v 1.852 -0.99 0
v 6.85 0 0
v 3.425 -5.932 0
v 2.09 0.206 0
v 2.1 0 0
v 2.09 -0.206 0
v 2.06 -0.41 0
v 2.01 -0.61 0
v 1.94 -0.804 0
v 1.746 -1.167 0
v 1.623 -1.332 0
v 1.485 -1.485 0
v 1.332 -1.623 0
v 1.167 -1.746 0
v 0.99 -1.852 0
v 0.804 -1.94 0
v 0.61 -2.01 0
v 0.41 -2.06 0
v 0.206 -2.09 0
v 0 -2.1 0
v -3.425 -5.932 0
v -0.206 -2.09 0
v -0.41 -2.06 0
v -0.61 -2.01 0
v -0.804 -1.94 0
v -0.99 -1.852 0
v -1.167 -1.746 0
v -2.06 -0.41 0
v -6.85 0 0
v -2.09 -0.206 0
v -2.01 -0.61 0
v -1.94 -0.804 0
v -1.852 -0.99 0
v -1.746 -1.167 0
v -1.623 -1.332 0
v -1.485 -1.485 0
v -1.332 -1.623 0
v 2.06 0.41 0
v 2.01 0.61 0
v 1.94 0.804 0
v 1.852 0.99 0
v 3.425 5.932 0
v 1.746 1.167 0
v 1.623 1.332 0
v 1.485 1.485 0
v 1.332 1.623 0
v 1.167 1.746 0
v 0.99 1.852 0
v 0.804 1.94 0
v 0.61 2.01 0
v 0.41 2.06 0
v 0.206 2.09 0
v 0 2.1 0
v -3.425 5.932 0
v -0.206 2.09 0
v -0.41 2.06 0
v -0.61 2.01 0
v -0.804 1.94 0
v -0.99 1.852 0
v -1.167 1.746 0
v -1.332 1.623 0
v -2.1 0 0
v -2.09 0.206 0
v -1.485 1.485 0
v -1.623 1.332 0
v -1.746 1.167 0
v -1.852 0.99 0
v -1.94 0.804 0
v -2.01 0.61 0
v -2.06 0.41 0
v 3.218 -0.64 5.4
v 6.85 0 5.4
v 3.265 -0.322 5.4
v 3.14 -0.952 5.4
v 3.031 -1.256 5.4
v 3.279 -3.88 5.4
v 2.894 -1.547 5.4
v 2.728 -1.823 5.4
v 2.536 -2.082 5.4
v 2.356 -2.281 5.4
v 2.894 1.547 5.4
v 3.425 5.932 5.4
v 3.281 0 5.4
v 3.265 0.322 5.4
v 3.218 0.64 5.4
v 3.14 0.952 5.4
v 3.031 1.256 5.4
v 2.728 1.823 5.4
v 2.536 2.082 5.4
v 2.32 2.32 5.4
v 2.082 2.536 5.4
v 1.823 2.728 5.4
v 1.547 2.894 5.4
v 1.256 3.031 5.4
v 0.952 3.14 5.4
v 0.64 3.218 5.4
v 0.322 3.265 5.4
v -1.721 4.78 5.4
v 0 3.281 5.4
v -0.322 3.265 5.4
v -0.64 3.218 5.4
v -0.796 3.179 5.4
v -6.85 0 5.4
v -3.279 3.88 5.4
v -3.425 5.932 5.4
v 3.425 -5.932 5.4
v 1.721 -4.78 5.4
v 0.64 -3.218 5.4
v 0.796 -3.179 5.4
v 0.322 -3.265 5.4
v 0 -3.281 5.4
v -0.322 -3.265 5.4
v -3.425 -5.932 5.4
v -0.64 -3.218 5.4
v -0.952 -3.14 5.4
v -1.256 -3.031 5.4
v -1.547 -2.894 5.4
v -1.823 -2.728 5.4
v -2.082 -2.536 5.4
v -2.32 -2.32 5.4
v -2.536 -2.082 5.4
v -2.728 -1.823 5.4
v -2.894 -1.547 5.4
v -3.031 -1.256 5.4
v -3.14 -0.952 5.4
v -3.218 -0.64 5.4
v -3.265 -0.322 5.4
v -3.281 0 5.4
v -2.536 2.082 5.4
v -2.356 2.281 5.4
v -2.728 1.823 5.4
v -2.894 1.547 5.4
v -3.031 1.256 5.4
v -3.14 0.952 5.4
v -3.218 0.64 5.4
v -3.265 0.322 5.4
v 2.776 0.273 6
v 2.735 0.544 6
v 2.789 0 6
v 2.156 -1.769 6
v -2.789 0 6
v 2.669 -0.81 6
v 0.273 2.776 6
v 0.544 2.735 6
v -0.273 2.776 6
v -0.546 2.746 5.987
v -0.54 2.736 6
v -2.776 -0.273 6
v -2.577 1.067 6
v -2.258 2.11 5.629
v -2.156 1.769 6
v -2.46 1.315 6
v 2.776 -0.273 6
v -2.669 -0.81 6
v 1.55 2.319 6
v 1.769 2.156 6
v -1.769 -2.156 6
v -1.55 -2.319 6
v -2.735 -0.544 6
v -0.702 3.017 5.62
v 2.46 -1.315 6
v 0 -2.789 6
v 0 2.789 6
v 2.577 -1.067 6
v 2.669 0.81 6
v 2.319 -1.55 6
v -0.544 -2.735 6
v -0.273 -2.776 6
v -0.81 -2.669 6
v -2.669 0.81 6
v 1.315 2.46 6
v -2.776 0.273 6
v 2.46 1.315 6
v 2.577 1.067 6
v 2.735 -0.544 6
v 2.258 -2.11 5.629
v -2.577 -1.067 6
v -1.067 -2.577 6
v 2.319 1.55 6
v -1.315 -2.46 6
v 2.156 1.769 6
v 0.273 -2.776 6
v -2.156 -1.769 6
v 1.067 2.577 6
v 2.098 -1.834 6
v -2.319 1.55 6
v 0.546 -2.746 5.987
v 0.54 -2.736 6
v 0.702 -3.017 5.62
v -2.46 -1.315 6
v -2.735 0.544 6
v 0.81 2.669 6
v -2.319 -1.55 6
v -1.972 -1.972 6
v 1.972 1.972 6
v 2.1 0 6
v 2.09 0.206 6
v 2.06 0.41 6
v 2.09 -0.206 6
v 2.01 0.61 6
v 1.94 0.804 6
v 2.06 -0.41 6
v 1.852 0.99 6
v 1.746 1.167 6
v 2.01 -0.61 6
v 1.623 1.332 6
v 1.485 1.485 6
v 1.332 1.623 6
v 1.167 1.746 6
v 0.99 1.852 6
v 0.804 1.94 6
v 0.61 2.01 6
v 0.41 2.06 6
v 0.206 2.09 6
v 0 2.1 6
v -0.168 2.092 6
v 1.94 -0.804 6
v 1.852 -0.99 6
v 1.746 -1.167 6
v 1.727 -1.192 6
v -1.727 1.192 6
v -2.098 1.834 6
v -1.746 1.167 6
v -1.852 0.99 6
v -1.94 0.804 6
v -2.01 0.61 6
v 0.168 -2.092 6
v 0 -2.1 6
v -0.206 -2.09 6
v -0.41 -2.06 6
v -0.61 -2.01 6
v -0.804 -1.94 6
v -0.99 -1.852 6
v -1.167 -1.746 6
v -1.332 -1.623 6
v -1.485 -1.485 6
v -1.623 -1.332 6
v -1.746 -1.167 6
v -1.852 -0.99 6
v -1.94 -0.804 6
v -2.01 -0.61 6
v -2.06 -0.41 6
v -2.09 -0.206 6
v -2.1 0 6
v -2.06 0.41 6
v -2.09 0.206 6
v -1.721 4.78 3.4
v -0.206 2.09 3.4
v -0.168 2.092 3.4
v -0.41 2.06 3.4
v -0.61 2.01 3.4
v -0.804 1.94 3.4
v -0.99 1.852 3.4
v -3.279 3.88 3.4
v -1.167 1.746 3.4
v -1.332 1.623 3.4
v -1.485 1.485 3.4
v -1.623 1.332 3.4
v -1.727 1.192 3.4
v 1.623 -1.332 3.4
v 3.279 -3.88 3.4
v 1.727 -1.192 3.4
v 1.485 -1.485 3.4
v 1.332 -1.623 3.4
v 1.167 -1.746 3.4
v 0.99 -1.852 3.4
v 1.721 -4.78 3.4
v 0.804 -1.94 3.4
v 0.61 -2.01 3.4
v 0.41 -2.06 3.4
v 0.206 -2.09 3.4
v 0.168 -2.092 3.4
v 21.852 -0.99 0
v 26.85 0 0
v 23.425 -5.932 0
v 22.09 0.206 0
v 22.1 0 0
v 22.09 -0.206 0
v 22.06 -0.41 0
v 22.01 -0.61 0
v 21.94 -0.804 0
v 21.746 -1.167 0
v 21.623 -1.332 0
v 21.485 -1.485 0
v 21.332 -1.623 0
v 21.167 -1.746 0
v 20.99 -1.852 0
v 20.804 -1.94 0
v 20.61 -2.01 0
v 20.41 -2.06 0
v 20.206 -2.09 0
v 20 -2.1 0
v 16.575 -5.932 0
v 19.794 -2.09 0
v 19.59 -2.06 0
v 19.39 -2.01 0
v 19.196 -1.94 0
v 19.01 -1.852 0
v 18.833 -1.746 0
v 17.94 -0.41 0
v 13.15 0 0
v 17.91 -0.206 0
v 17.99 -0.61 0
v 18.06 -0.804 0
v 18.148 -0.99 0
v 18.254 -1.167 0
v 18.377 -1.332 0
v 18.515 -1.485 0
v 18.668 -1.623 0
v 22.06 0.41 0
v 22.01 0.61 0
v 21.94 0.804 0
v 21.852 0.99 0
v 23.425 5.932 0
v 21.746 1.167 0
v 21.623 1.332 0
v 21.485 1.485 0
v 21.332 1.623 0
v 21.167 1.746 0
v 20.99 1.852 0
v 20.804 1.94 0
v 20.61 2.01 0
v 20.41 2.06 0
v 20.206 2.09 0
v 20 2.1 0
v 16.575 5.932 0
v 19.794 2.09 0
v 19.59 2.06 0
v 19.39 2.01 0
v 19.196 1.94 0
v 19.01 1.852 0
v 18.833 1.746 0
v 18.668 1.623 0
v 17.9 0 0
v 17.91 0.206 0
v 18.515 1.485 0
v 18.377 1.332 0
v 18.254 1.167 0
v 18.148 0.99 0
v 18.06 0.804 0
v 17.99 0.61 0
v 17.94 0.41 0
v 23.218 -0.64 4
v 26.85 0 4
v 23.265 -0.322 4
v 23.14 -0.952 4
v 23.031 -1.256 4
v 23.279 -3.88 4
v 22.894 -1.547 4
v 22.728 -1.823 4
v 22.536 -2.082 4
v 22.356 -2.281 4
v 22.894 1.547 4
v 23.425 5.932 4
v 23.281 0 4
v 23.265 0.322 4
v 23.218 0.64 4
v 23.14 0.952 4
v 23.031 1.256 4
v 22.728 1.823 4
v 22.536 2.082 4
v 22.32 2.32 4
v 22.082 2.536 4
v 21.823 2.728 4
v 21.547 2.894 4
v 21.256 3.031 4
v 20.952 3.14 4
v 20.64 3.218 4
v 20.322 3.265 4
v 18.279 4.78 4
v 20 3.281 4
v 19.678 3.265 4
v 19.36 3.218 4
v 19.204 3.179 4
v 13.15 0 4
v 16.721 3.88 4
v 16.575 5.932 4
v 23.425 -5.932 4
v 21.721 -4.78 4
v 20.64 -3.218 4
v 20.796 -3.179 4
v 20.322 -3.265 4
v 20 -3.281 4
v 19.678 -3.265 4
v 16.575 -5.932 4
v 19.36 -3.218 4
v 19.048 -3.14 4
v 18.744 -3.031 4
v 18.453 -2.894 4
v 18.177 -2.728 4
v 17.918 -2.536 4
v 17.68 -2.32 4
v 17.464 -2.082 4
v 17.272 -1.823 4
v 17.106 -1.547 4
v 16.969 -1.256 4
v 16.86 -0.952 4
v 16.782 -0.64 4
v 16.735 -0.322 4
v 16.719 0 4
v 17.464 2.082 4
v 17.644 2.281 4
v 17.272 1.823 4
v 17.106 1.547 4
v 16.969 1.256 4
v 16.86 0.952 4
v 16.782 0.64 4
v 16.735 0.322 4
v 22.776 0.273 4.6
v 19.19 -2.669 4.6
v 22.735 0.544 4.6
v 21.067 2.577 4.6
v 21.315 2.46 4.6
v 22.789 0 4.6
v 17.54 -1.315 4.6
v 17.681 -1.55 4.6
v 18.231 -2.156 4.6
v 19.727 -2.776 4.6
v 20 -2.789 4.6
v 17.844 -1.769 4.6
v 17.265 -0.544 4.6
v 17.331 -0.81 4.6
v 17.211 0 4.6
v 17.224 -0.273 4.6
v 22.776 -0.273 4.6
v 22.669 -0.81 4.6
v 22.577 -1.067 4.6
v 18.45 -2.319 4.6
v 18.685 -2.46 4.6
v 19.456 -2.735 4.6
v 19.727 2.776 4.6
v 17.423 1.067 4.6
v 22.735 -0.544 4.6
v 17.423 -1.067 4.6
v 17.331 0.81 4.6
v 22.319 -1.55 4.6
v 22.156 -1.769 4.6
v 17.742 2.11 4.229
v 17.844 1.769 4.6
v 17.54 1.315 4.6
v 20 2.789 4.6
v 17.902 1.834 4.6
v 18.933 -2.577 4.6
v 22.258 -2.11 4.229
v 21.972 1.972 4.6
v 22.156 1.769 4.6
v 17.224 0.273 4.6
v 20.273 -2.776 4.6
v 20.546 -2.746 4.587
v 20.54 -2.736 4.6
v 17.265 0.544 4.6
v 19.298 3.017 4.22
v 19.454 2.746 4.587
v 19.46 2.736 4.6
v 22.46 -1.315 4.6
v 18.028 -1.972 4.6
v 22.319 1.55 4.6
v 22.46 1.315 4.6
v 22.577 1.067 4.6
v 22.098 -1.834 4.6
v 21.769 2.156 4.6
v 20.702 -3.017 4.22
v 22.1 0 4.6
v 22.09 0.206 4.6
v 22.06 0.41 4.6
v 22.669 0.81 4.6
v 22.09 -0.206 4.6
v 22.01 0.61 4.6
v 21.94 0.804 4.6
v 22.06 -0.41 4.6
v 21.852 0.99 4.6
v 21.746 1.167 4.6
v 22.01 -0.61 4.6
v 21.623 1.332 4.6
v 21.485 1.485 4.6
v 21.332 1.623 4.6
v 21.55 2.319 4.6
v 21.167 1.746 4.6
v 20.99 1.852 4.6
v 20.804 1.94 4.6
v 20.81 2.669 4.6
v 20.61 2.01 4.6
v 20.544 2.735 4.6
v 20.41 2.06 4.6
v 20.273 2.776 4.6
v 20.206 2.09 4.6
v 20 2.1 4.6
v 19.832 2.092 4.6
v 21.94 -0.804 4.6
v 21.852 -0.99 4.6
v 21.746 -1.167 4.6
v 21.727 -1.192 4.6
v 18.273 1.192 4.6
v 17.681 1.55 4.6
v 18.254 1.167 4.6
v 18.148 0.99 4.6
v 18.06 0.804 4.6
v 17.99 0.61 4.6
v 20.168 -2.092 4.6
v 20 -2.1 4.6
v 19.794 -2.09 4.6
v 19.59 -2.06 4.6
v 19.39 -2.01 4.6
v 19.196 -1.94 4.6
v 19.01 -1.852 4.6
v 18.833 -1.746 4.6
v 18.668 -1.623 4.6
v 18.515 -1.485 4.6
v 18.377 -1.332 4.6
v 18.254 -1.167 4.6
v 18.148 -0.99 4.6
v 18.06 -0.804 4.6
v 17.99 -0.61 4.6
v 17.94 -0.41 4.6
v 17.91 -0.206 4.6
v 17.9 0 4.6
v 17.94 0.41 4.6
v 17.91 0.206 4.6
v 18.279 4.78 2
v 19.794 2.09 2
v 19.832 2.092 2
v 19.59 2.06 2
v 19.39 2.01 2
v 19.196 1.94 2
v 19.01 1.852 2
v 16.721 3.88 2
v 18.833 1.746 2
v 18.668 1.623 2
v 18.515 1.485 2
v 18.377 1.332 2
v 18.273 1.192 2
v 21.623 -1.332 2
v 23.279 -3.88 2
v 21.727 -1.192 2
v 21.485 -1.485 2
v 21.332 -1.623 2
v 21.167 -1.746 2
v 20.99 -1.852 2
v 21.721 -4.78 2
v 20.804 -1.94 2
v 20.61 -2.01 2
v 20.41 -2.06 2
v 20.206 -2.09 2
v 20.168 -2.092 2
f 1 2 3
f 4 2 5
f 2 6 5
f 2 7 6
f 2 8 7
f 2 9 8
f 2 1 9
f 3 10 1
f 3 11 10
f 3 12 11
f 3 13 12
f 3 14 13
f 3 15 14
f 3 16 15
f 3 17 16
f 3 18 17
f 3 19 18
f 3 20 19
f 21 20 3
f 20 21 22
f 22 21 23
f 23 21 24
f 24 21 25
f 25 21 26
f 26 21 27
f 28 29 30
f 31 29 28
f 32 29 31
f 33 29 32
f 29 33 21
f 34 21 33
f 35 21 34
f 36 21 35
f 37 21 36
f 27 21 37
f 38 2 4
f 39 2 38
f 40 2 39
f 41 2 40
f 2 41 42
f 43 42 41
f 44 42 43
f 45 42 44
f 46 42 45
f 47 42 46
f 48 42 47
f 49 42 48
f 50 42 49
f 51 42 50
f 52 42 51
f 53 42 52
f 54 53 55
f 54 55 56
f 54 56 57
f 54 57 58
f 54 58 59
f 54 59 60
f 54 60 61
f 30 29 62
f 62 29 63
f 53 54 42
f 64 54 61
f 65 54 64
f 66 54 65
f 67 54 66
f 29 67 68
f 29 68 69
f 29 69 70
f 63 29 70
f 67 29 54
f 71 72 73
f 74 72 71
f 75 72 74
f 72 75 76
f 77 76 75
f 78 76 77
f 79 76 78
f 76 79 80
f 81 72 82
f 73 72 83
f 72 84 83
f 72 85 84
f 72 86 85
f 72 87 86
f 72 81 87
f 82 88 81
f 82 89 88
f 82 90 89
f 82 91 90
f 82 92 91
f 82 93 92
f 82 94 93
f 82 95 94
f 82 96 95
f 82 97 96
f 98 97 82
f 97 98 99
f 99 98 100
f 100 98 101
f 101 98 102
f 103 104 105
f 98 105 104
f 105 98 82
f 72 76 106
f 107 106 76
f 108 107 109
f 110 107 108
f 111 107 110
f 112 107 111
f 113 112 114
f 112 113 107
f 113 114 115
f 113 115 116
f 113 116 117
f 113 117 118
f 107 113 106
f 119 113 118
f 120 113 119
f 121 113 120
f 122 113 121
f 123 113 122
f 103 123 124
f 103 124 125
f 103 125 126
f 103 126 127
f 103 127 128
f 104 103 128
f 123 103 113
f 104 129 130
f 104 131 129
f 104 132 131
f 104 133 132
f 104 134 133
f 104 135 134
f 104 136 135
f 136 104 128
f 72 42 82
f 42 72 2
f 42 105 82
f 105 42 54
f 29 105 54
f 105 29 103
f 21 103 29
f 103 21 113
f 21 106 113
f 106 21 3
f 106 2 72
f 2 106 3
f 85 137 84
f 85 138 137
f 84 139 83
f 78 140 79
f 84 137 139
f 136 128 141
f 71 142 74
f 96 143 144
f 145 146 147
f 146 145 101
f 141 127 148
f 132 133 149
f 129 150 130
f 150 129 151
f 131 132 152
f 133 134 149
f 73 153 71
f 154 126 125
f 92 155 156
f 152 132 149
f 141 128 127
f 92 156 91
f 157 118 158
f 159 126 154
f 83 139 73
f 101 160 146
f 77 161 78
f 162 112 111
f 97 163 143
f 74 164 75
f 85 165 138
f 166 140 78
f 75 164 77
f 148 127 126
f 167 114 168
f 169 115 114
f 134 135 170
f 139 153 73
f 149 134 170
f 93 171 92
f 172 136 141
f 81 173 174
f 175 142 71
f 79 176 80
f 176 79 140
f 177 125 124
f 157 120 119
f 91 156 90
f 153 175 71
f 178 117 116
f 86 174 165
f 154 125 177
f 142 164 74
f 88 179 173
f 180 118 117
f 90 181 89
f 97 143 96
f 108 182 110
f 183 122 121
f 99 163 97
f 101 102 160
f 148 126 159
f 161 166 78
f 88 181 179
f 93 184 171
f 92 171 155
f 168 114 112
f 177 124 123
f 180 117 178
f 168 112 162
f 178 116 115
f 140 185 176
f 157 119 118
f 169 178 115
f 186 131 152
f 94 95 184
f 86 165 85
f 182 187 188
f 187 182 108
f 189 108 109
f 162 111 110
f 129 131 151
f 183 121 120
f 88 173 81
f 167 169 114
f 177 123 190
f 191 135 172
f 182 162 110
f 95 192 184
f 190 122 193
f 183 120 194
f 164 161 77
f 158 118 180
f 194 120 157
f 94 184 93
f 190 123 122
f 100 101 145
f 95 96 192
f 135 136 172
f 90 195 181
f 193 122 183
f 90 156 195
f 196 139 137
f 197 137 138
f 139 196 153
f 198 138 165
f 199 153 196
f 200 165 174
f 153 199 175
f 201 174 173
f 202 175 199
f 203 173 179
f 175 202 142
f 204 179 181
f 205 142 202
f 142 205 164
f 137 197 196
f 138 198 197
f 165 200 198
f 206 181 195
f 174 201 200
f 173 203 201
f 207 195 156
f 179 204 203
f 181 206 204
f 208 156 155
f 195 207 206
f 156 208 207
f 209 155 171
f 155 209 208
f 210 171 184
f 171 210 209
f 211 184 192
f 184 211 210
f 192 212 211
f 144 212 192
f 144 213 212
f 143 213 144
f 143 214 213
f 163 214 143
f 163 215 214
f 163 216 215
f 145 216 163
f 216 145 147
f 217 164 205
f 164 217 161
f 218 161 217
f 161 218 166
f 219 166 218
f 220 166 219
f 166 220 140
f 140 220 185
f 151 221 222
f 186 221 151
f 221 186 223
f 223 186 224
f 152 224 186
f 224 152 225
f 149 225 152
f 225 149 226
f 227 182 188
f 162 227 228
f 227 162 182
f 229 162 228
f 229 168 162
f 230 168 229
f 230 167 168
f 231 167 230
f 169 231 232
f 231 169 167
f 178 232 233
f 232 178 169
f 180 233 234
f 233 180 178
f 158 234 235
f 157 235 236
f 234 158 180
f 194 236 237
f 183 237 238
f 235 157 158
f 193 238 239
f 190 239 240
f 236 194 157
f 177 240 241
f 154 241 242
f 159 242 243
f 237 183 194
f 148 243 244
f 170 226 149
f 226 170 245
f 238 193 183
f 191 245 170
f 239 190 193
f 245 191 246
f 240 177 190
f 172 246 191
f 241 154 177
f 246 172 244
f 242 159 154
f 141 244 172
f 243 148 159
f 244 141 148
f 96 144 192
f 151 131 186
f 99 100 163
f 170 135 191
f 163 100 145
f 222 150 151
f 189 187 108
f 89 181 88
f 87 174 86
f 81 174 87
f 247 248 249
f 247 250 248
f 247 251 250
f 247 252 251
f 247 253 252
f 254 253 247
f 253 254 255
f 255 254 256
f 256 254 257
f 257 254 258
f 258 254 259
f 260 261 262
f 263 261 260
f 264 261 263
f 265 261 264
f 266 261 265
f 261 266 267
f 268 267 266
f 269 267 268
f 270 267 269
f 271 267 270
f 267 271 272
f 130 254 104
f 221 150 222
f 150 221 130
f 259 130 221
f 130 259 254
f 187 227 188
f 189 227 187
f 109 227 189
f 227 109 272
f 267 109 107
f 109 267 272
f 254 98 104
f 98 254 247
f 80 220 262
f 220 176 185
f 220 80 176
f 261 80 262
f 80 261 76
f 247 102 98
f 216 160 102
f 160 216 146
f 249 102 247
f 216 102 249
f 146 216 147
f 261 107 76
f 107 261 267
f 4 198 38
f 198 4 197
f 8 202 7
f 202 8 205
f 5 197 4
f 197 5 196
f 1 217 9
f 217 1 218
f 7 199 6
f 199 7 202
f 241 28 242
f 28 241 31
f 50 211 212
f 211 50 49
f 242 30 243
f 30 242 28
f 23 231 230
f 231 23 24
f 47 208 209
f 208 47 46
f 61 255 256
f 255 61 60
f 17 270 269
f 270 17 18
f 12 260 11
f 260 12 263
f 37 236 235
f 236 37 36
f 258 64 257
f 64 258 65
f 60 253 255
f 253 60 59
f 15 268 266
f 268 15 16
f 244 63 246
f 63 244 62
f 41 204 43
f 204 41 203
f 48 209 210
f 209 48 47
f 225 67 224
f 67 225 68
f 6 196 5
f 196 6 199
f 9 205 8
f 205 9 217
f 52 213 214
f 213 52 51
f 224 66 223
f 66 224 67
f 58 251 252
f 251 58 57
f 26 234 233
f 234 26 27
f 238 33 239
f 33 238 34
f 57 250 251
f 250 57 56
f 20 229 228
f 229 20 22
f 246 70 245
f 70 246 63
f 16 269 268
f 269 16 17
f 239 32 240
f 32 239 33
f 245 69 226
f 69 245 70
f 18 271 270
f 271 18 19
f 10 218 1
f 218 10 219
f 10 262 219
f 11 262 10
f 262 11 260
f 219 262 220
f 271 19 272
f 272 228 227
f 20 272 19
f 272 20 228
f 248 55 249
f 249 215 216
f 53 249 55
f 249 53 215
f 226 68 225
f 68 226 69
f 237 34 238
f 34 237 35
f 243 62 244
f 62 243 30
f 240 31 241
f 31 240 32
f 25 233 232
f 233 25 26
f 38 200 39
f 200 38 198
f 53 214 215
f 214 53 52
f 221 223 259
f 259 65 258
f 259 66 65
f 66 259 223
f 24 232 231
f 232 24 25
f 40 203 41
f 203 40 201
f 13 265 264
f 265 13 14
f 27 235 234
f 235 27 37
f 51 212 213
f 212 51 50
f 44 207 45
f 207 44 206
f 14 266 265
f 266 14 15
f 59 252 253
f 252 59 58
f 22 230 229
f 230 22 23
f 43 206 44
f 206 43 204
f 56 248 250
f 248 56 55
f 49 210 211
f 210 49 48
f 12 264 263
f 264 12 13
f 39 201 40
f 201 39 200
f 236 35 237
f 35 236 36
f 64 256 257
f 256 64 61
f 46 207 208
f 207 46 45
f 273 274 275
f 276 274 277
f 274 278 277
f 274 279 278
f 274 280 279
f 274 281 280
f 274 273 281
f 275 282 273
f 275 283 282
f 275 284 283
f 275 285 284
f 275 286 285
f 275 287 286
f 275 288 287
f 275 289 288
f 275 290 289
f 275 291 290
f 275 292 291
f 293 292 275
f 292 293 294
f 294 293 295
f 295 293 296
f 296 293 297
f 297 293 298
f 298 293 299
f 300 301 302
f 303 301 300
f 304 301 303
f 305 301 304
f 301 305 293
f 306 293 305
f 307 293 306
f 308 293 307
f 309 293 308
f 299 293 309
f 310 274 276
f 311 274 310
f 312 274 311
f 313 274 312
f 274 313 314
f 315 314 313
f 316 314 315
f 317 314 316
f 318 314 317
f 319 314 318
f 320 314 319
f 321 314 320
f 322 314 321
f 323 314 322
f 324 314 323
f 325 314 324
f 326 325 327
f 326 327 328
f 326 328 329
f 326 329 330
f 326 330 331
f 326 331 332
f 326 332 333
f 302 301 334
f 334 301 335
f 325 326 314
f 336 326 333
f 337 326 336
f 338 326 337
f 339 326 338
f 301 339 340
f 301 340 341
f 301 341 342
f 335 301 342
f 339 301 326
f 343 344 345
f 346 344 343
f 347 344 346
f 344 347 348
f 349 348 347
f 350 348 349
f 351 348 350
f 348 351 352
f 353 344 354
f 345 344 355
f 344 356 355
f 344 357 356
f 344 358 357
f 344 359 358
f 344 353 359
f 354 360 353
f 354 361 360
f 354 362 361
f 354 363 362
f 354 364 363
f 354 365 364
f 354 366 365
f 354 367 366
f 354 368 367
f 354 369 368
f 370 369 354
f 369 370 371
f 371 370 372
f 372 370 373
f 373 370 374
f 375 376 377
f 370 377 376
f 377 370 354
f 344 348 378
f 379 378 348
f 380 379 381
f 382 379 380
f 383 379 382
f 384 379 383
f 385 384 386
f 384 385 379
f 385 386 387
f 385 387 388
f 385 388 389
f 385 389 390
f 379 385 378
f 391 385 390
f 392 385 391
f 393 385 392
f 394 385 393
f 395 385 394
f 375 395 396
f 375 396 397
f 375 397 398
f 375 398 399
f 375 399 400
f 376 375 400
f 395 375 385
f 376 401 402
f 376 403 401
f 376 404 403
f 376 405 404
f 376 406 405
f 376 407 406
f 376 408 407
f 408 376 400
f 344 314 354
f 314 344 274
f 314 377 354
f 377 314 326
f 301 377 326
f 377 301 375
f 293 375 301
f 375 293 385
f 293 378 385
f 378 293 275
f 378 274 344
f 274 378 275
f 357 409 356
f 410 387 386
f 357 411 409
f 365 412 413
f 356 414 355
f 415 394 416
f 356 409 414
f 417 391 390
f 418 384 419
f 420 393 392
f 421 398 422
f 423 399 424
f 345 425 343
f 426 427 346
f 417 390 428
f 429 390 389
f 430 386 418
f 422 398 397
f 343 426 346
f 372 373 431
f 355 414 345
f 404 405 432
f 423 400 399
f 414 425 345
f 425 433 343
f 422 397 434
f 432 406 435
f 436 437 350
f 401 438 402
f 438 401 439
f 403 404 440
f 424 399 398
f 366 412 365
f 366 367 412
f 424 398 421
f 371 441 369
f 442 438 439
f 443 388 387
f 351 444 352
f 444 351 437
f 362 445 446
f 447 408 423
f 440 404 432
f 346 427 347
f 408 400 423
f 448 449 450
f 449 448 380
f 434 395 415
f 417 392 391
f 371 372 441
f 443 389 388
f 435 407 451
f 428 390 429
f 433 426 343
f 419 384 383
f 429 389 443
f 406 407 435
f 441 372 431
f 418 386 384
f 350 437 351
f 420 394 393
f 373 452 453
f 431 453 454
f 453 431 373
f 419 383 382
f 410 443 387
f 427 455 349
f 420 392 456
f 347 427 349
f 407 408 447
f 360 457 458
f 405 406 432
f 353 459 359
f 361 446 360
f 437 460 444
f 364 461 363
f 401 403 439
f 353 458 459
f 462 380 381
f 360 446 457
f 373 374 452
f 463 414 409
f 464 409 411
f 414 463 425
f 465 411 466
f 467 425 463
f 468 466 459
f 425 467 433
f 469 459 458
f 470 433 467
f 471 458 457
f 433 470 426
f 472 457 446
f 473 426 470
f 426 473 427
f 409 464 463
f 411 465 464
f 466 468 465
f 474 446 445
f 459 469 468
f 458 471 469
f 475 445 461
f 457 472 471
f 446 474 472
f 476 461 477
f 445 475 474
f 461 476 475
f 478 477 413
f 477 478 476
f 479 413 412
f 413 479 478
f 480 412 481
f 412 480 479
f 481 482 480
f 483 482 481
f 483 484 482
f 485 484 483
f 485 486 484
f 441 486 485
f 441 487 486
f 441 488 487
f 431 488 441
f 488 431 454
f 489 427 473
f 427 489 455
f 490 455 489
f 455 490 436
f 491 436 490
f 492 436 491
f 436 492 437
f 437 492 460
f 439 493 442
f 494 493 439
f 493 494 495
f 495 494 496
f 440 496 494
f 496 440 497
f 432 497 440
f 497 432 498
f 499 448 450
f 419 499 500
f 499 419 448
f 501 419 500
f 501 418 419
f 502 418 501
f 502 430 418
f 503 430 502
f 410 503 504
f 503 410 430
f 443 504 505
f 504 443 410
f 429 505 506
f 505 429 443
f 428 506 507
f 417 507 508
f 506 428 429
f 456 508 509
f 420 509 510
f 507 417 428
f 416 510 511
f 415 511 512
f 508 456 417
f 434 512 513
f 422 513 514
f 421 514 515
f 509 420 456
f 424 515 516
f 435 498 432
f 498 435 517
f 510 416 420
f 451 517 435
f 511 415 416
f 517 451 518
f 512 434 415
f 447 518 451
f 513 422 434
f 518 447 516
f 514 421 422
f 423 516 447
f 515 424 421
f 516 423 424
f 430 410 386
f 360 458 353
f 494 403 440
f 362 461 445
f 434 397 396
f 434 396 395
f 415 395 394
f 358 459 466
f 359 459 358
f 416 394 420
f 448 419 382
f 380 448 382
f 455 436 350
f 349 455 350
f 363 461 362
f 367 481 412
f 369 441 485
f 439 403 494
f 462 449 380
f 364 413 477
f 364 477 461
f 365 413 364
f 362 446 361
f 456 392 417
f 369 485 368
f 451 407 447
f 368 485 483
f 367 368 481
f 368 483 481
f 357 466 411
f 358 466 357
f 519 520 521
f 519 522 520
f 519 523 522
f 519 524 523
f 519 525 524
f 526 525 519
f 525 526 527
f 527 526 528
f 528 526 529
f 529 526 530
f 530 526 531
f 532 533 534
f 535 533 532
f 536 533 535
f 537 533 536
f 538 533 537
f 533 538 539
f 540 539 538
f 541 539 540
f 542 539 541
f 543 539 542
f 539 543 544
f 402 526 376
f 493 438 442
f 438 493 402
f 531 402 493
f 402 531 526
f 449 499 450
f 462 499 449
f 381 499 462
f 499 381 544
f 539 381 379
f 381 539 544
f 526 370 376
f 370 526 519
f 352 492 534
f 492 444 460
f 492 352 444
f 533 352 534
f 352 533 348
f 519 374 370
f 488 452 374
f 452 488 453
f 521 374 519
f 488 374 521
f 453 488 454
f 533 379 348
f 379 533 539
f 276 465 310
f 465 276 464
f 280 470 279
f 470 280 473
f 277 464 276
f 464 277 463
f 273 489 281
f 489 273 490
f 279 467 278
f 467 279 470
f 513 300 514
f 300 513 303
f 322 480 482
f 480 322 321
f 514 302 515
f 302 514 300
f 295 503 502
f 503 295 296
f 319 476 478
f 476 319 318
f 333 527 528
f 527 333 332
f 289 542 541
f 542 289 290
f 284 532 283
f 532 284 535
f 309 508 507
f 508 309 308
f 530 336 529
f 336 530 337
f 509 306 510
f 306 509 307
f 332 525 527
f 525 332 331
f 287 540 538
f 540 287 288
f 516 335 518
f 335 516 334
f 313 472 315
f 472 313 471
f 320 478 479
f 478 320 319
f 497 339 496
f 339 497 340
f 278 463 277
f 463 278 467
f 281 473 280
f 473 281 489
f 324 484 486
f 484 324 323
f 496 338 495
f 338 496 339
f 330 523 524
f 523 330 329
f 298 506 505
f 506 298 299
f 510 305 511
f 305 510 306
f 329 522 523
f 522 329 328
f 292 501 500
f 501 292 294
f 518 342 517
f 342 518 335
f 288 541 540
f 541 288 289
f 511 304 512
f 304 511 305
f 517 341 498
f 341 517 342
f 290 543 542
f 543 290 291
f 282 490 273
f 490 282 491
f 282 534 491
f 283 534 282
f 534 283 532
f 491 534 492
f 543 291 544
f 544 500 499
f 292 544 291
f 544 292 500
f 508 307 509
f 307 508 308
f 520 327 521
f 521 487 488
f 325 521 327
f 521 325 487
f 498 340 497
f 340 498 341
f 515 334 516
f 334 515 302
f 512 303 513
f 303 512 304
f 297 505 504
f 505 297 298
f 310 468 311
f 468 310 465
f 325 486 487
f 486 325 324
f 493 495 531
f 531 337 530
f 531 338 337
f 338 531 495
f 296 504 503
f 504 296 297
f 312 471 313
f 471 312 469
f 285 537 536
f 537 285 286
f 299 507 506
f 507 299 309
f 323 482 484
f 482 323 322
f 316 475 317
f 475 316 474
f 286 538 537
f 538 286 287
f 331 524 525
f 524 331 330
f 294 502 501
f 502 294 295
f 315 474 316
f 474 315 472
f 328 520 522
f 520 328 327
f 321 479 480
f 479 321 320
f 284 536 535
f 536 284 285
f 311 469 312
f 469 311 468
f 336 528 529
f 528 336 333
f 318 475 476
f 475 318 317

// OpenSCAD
$fn = 64;

module wltoys_hex_mount(h = 4.00, diameter = 13.70, axle_d = 4.20, spacer_h = 0.60) {
    optical_axis_mount_l = 10.00;
    optical_axis_mount_w = 1.80;
    optical_axis_mount_h = 2.00;
    
    difference() {
        union() {
            linear_extrude(h)
                difference() {
                    circle($fn = 6, r = diameter / 2);
                    circle(r = axle_d / 2);
                }
            translate([0, 0, h])
                linear_extrude(spacer_h, scale = 0.85)
                    circle(r = axle_d / 1.28);
        }
            
        translate([0, 0, h - optical_axis_mount_h])
            linear_extrude(h)
                rotate([0, 0, 30])
                square([optical_axis_mount_w, optical_axis_mount_l], center = true);
        
        linear_extrude(h + spacer_h + 0.1)
            circle(r = axle_d / 2);
    }
}


translate([00, 0, 0]) wltoys_hex_mount(h = 5.40);
translate([20, 0, 0]) wltoys_hex_mount(h = 4.00);
